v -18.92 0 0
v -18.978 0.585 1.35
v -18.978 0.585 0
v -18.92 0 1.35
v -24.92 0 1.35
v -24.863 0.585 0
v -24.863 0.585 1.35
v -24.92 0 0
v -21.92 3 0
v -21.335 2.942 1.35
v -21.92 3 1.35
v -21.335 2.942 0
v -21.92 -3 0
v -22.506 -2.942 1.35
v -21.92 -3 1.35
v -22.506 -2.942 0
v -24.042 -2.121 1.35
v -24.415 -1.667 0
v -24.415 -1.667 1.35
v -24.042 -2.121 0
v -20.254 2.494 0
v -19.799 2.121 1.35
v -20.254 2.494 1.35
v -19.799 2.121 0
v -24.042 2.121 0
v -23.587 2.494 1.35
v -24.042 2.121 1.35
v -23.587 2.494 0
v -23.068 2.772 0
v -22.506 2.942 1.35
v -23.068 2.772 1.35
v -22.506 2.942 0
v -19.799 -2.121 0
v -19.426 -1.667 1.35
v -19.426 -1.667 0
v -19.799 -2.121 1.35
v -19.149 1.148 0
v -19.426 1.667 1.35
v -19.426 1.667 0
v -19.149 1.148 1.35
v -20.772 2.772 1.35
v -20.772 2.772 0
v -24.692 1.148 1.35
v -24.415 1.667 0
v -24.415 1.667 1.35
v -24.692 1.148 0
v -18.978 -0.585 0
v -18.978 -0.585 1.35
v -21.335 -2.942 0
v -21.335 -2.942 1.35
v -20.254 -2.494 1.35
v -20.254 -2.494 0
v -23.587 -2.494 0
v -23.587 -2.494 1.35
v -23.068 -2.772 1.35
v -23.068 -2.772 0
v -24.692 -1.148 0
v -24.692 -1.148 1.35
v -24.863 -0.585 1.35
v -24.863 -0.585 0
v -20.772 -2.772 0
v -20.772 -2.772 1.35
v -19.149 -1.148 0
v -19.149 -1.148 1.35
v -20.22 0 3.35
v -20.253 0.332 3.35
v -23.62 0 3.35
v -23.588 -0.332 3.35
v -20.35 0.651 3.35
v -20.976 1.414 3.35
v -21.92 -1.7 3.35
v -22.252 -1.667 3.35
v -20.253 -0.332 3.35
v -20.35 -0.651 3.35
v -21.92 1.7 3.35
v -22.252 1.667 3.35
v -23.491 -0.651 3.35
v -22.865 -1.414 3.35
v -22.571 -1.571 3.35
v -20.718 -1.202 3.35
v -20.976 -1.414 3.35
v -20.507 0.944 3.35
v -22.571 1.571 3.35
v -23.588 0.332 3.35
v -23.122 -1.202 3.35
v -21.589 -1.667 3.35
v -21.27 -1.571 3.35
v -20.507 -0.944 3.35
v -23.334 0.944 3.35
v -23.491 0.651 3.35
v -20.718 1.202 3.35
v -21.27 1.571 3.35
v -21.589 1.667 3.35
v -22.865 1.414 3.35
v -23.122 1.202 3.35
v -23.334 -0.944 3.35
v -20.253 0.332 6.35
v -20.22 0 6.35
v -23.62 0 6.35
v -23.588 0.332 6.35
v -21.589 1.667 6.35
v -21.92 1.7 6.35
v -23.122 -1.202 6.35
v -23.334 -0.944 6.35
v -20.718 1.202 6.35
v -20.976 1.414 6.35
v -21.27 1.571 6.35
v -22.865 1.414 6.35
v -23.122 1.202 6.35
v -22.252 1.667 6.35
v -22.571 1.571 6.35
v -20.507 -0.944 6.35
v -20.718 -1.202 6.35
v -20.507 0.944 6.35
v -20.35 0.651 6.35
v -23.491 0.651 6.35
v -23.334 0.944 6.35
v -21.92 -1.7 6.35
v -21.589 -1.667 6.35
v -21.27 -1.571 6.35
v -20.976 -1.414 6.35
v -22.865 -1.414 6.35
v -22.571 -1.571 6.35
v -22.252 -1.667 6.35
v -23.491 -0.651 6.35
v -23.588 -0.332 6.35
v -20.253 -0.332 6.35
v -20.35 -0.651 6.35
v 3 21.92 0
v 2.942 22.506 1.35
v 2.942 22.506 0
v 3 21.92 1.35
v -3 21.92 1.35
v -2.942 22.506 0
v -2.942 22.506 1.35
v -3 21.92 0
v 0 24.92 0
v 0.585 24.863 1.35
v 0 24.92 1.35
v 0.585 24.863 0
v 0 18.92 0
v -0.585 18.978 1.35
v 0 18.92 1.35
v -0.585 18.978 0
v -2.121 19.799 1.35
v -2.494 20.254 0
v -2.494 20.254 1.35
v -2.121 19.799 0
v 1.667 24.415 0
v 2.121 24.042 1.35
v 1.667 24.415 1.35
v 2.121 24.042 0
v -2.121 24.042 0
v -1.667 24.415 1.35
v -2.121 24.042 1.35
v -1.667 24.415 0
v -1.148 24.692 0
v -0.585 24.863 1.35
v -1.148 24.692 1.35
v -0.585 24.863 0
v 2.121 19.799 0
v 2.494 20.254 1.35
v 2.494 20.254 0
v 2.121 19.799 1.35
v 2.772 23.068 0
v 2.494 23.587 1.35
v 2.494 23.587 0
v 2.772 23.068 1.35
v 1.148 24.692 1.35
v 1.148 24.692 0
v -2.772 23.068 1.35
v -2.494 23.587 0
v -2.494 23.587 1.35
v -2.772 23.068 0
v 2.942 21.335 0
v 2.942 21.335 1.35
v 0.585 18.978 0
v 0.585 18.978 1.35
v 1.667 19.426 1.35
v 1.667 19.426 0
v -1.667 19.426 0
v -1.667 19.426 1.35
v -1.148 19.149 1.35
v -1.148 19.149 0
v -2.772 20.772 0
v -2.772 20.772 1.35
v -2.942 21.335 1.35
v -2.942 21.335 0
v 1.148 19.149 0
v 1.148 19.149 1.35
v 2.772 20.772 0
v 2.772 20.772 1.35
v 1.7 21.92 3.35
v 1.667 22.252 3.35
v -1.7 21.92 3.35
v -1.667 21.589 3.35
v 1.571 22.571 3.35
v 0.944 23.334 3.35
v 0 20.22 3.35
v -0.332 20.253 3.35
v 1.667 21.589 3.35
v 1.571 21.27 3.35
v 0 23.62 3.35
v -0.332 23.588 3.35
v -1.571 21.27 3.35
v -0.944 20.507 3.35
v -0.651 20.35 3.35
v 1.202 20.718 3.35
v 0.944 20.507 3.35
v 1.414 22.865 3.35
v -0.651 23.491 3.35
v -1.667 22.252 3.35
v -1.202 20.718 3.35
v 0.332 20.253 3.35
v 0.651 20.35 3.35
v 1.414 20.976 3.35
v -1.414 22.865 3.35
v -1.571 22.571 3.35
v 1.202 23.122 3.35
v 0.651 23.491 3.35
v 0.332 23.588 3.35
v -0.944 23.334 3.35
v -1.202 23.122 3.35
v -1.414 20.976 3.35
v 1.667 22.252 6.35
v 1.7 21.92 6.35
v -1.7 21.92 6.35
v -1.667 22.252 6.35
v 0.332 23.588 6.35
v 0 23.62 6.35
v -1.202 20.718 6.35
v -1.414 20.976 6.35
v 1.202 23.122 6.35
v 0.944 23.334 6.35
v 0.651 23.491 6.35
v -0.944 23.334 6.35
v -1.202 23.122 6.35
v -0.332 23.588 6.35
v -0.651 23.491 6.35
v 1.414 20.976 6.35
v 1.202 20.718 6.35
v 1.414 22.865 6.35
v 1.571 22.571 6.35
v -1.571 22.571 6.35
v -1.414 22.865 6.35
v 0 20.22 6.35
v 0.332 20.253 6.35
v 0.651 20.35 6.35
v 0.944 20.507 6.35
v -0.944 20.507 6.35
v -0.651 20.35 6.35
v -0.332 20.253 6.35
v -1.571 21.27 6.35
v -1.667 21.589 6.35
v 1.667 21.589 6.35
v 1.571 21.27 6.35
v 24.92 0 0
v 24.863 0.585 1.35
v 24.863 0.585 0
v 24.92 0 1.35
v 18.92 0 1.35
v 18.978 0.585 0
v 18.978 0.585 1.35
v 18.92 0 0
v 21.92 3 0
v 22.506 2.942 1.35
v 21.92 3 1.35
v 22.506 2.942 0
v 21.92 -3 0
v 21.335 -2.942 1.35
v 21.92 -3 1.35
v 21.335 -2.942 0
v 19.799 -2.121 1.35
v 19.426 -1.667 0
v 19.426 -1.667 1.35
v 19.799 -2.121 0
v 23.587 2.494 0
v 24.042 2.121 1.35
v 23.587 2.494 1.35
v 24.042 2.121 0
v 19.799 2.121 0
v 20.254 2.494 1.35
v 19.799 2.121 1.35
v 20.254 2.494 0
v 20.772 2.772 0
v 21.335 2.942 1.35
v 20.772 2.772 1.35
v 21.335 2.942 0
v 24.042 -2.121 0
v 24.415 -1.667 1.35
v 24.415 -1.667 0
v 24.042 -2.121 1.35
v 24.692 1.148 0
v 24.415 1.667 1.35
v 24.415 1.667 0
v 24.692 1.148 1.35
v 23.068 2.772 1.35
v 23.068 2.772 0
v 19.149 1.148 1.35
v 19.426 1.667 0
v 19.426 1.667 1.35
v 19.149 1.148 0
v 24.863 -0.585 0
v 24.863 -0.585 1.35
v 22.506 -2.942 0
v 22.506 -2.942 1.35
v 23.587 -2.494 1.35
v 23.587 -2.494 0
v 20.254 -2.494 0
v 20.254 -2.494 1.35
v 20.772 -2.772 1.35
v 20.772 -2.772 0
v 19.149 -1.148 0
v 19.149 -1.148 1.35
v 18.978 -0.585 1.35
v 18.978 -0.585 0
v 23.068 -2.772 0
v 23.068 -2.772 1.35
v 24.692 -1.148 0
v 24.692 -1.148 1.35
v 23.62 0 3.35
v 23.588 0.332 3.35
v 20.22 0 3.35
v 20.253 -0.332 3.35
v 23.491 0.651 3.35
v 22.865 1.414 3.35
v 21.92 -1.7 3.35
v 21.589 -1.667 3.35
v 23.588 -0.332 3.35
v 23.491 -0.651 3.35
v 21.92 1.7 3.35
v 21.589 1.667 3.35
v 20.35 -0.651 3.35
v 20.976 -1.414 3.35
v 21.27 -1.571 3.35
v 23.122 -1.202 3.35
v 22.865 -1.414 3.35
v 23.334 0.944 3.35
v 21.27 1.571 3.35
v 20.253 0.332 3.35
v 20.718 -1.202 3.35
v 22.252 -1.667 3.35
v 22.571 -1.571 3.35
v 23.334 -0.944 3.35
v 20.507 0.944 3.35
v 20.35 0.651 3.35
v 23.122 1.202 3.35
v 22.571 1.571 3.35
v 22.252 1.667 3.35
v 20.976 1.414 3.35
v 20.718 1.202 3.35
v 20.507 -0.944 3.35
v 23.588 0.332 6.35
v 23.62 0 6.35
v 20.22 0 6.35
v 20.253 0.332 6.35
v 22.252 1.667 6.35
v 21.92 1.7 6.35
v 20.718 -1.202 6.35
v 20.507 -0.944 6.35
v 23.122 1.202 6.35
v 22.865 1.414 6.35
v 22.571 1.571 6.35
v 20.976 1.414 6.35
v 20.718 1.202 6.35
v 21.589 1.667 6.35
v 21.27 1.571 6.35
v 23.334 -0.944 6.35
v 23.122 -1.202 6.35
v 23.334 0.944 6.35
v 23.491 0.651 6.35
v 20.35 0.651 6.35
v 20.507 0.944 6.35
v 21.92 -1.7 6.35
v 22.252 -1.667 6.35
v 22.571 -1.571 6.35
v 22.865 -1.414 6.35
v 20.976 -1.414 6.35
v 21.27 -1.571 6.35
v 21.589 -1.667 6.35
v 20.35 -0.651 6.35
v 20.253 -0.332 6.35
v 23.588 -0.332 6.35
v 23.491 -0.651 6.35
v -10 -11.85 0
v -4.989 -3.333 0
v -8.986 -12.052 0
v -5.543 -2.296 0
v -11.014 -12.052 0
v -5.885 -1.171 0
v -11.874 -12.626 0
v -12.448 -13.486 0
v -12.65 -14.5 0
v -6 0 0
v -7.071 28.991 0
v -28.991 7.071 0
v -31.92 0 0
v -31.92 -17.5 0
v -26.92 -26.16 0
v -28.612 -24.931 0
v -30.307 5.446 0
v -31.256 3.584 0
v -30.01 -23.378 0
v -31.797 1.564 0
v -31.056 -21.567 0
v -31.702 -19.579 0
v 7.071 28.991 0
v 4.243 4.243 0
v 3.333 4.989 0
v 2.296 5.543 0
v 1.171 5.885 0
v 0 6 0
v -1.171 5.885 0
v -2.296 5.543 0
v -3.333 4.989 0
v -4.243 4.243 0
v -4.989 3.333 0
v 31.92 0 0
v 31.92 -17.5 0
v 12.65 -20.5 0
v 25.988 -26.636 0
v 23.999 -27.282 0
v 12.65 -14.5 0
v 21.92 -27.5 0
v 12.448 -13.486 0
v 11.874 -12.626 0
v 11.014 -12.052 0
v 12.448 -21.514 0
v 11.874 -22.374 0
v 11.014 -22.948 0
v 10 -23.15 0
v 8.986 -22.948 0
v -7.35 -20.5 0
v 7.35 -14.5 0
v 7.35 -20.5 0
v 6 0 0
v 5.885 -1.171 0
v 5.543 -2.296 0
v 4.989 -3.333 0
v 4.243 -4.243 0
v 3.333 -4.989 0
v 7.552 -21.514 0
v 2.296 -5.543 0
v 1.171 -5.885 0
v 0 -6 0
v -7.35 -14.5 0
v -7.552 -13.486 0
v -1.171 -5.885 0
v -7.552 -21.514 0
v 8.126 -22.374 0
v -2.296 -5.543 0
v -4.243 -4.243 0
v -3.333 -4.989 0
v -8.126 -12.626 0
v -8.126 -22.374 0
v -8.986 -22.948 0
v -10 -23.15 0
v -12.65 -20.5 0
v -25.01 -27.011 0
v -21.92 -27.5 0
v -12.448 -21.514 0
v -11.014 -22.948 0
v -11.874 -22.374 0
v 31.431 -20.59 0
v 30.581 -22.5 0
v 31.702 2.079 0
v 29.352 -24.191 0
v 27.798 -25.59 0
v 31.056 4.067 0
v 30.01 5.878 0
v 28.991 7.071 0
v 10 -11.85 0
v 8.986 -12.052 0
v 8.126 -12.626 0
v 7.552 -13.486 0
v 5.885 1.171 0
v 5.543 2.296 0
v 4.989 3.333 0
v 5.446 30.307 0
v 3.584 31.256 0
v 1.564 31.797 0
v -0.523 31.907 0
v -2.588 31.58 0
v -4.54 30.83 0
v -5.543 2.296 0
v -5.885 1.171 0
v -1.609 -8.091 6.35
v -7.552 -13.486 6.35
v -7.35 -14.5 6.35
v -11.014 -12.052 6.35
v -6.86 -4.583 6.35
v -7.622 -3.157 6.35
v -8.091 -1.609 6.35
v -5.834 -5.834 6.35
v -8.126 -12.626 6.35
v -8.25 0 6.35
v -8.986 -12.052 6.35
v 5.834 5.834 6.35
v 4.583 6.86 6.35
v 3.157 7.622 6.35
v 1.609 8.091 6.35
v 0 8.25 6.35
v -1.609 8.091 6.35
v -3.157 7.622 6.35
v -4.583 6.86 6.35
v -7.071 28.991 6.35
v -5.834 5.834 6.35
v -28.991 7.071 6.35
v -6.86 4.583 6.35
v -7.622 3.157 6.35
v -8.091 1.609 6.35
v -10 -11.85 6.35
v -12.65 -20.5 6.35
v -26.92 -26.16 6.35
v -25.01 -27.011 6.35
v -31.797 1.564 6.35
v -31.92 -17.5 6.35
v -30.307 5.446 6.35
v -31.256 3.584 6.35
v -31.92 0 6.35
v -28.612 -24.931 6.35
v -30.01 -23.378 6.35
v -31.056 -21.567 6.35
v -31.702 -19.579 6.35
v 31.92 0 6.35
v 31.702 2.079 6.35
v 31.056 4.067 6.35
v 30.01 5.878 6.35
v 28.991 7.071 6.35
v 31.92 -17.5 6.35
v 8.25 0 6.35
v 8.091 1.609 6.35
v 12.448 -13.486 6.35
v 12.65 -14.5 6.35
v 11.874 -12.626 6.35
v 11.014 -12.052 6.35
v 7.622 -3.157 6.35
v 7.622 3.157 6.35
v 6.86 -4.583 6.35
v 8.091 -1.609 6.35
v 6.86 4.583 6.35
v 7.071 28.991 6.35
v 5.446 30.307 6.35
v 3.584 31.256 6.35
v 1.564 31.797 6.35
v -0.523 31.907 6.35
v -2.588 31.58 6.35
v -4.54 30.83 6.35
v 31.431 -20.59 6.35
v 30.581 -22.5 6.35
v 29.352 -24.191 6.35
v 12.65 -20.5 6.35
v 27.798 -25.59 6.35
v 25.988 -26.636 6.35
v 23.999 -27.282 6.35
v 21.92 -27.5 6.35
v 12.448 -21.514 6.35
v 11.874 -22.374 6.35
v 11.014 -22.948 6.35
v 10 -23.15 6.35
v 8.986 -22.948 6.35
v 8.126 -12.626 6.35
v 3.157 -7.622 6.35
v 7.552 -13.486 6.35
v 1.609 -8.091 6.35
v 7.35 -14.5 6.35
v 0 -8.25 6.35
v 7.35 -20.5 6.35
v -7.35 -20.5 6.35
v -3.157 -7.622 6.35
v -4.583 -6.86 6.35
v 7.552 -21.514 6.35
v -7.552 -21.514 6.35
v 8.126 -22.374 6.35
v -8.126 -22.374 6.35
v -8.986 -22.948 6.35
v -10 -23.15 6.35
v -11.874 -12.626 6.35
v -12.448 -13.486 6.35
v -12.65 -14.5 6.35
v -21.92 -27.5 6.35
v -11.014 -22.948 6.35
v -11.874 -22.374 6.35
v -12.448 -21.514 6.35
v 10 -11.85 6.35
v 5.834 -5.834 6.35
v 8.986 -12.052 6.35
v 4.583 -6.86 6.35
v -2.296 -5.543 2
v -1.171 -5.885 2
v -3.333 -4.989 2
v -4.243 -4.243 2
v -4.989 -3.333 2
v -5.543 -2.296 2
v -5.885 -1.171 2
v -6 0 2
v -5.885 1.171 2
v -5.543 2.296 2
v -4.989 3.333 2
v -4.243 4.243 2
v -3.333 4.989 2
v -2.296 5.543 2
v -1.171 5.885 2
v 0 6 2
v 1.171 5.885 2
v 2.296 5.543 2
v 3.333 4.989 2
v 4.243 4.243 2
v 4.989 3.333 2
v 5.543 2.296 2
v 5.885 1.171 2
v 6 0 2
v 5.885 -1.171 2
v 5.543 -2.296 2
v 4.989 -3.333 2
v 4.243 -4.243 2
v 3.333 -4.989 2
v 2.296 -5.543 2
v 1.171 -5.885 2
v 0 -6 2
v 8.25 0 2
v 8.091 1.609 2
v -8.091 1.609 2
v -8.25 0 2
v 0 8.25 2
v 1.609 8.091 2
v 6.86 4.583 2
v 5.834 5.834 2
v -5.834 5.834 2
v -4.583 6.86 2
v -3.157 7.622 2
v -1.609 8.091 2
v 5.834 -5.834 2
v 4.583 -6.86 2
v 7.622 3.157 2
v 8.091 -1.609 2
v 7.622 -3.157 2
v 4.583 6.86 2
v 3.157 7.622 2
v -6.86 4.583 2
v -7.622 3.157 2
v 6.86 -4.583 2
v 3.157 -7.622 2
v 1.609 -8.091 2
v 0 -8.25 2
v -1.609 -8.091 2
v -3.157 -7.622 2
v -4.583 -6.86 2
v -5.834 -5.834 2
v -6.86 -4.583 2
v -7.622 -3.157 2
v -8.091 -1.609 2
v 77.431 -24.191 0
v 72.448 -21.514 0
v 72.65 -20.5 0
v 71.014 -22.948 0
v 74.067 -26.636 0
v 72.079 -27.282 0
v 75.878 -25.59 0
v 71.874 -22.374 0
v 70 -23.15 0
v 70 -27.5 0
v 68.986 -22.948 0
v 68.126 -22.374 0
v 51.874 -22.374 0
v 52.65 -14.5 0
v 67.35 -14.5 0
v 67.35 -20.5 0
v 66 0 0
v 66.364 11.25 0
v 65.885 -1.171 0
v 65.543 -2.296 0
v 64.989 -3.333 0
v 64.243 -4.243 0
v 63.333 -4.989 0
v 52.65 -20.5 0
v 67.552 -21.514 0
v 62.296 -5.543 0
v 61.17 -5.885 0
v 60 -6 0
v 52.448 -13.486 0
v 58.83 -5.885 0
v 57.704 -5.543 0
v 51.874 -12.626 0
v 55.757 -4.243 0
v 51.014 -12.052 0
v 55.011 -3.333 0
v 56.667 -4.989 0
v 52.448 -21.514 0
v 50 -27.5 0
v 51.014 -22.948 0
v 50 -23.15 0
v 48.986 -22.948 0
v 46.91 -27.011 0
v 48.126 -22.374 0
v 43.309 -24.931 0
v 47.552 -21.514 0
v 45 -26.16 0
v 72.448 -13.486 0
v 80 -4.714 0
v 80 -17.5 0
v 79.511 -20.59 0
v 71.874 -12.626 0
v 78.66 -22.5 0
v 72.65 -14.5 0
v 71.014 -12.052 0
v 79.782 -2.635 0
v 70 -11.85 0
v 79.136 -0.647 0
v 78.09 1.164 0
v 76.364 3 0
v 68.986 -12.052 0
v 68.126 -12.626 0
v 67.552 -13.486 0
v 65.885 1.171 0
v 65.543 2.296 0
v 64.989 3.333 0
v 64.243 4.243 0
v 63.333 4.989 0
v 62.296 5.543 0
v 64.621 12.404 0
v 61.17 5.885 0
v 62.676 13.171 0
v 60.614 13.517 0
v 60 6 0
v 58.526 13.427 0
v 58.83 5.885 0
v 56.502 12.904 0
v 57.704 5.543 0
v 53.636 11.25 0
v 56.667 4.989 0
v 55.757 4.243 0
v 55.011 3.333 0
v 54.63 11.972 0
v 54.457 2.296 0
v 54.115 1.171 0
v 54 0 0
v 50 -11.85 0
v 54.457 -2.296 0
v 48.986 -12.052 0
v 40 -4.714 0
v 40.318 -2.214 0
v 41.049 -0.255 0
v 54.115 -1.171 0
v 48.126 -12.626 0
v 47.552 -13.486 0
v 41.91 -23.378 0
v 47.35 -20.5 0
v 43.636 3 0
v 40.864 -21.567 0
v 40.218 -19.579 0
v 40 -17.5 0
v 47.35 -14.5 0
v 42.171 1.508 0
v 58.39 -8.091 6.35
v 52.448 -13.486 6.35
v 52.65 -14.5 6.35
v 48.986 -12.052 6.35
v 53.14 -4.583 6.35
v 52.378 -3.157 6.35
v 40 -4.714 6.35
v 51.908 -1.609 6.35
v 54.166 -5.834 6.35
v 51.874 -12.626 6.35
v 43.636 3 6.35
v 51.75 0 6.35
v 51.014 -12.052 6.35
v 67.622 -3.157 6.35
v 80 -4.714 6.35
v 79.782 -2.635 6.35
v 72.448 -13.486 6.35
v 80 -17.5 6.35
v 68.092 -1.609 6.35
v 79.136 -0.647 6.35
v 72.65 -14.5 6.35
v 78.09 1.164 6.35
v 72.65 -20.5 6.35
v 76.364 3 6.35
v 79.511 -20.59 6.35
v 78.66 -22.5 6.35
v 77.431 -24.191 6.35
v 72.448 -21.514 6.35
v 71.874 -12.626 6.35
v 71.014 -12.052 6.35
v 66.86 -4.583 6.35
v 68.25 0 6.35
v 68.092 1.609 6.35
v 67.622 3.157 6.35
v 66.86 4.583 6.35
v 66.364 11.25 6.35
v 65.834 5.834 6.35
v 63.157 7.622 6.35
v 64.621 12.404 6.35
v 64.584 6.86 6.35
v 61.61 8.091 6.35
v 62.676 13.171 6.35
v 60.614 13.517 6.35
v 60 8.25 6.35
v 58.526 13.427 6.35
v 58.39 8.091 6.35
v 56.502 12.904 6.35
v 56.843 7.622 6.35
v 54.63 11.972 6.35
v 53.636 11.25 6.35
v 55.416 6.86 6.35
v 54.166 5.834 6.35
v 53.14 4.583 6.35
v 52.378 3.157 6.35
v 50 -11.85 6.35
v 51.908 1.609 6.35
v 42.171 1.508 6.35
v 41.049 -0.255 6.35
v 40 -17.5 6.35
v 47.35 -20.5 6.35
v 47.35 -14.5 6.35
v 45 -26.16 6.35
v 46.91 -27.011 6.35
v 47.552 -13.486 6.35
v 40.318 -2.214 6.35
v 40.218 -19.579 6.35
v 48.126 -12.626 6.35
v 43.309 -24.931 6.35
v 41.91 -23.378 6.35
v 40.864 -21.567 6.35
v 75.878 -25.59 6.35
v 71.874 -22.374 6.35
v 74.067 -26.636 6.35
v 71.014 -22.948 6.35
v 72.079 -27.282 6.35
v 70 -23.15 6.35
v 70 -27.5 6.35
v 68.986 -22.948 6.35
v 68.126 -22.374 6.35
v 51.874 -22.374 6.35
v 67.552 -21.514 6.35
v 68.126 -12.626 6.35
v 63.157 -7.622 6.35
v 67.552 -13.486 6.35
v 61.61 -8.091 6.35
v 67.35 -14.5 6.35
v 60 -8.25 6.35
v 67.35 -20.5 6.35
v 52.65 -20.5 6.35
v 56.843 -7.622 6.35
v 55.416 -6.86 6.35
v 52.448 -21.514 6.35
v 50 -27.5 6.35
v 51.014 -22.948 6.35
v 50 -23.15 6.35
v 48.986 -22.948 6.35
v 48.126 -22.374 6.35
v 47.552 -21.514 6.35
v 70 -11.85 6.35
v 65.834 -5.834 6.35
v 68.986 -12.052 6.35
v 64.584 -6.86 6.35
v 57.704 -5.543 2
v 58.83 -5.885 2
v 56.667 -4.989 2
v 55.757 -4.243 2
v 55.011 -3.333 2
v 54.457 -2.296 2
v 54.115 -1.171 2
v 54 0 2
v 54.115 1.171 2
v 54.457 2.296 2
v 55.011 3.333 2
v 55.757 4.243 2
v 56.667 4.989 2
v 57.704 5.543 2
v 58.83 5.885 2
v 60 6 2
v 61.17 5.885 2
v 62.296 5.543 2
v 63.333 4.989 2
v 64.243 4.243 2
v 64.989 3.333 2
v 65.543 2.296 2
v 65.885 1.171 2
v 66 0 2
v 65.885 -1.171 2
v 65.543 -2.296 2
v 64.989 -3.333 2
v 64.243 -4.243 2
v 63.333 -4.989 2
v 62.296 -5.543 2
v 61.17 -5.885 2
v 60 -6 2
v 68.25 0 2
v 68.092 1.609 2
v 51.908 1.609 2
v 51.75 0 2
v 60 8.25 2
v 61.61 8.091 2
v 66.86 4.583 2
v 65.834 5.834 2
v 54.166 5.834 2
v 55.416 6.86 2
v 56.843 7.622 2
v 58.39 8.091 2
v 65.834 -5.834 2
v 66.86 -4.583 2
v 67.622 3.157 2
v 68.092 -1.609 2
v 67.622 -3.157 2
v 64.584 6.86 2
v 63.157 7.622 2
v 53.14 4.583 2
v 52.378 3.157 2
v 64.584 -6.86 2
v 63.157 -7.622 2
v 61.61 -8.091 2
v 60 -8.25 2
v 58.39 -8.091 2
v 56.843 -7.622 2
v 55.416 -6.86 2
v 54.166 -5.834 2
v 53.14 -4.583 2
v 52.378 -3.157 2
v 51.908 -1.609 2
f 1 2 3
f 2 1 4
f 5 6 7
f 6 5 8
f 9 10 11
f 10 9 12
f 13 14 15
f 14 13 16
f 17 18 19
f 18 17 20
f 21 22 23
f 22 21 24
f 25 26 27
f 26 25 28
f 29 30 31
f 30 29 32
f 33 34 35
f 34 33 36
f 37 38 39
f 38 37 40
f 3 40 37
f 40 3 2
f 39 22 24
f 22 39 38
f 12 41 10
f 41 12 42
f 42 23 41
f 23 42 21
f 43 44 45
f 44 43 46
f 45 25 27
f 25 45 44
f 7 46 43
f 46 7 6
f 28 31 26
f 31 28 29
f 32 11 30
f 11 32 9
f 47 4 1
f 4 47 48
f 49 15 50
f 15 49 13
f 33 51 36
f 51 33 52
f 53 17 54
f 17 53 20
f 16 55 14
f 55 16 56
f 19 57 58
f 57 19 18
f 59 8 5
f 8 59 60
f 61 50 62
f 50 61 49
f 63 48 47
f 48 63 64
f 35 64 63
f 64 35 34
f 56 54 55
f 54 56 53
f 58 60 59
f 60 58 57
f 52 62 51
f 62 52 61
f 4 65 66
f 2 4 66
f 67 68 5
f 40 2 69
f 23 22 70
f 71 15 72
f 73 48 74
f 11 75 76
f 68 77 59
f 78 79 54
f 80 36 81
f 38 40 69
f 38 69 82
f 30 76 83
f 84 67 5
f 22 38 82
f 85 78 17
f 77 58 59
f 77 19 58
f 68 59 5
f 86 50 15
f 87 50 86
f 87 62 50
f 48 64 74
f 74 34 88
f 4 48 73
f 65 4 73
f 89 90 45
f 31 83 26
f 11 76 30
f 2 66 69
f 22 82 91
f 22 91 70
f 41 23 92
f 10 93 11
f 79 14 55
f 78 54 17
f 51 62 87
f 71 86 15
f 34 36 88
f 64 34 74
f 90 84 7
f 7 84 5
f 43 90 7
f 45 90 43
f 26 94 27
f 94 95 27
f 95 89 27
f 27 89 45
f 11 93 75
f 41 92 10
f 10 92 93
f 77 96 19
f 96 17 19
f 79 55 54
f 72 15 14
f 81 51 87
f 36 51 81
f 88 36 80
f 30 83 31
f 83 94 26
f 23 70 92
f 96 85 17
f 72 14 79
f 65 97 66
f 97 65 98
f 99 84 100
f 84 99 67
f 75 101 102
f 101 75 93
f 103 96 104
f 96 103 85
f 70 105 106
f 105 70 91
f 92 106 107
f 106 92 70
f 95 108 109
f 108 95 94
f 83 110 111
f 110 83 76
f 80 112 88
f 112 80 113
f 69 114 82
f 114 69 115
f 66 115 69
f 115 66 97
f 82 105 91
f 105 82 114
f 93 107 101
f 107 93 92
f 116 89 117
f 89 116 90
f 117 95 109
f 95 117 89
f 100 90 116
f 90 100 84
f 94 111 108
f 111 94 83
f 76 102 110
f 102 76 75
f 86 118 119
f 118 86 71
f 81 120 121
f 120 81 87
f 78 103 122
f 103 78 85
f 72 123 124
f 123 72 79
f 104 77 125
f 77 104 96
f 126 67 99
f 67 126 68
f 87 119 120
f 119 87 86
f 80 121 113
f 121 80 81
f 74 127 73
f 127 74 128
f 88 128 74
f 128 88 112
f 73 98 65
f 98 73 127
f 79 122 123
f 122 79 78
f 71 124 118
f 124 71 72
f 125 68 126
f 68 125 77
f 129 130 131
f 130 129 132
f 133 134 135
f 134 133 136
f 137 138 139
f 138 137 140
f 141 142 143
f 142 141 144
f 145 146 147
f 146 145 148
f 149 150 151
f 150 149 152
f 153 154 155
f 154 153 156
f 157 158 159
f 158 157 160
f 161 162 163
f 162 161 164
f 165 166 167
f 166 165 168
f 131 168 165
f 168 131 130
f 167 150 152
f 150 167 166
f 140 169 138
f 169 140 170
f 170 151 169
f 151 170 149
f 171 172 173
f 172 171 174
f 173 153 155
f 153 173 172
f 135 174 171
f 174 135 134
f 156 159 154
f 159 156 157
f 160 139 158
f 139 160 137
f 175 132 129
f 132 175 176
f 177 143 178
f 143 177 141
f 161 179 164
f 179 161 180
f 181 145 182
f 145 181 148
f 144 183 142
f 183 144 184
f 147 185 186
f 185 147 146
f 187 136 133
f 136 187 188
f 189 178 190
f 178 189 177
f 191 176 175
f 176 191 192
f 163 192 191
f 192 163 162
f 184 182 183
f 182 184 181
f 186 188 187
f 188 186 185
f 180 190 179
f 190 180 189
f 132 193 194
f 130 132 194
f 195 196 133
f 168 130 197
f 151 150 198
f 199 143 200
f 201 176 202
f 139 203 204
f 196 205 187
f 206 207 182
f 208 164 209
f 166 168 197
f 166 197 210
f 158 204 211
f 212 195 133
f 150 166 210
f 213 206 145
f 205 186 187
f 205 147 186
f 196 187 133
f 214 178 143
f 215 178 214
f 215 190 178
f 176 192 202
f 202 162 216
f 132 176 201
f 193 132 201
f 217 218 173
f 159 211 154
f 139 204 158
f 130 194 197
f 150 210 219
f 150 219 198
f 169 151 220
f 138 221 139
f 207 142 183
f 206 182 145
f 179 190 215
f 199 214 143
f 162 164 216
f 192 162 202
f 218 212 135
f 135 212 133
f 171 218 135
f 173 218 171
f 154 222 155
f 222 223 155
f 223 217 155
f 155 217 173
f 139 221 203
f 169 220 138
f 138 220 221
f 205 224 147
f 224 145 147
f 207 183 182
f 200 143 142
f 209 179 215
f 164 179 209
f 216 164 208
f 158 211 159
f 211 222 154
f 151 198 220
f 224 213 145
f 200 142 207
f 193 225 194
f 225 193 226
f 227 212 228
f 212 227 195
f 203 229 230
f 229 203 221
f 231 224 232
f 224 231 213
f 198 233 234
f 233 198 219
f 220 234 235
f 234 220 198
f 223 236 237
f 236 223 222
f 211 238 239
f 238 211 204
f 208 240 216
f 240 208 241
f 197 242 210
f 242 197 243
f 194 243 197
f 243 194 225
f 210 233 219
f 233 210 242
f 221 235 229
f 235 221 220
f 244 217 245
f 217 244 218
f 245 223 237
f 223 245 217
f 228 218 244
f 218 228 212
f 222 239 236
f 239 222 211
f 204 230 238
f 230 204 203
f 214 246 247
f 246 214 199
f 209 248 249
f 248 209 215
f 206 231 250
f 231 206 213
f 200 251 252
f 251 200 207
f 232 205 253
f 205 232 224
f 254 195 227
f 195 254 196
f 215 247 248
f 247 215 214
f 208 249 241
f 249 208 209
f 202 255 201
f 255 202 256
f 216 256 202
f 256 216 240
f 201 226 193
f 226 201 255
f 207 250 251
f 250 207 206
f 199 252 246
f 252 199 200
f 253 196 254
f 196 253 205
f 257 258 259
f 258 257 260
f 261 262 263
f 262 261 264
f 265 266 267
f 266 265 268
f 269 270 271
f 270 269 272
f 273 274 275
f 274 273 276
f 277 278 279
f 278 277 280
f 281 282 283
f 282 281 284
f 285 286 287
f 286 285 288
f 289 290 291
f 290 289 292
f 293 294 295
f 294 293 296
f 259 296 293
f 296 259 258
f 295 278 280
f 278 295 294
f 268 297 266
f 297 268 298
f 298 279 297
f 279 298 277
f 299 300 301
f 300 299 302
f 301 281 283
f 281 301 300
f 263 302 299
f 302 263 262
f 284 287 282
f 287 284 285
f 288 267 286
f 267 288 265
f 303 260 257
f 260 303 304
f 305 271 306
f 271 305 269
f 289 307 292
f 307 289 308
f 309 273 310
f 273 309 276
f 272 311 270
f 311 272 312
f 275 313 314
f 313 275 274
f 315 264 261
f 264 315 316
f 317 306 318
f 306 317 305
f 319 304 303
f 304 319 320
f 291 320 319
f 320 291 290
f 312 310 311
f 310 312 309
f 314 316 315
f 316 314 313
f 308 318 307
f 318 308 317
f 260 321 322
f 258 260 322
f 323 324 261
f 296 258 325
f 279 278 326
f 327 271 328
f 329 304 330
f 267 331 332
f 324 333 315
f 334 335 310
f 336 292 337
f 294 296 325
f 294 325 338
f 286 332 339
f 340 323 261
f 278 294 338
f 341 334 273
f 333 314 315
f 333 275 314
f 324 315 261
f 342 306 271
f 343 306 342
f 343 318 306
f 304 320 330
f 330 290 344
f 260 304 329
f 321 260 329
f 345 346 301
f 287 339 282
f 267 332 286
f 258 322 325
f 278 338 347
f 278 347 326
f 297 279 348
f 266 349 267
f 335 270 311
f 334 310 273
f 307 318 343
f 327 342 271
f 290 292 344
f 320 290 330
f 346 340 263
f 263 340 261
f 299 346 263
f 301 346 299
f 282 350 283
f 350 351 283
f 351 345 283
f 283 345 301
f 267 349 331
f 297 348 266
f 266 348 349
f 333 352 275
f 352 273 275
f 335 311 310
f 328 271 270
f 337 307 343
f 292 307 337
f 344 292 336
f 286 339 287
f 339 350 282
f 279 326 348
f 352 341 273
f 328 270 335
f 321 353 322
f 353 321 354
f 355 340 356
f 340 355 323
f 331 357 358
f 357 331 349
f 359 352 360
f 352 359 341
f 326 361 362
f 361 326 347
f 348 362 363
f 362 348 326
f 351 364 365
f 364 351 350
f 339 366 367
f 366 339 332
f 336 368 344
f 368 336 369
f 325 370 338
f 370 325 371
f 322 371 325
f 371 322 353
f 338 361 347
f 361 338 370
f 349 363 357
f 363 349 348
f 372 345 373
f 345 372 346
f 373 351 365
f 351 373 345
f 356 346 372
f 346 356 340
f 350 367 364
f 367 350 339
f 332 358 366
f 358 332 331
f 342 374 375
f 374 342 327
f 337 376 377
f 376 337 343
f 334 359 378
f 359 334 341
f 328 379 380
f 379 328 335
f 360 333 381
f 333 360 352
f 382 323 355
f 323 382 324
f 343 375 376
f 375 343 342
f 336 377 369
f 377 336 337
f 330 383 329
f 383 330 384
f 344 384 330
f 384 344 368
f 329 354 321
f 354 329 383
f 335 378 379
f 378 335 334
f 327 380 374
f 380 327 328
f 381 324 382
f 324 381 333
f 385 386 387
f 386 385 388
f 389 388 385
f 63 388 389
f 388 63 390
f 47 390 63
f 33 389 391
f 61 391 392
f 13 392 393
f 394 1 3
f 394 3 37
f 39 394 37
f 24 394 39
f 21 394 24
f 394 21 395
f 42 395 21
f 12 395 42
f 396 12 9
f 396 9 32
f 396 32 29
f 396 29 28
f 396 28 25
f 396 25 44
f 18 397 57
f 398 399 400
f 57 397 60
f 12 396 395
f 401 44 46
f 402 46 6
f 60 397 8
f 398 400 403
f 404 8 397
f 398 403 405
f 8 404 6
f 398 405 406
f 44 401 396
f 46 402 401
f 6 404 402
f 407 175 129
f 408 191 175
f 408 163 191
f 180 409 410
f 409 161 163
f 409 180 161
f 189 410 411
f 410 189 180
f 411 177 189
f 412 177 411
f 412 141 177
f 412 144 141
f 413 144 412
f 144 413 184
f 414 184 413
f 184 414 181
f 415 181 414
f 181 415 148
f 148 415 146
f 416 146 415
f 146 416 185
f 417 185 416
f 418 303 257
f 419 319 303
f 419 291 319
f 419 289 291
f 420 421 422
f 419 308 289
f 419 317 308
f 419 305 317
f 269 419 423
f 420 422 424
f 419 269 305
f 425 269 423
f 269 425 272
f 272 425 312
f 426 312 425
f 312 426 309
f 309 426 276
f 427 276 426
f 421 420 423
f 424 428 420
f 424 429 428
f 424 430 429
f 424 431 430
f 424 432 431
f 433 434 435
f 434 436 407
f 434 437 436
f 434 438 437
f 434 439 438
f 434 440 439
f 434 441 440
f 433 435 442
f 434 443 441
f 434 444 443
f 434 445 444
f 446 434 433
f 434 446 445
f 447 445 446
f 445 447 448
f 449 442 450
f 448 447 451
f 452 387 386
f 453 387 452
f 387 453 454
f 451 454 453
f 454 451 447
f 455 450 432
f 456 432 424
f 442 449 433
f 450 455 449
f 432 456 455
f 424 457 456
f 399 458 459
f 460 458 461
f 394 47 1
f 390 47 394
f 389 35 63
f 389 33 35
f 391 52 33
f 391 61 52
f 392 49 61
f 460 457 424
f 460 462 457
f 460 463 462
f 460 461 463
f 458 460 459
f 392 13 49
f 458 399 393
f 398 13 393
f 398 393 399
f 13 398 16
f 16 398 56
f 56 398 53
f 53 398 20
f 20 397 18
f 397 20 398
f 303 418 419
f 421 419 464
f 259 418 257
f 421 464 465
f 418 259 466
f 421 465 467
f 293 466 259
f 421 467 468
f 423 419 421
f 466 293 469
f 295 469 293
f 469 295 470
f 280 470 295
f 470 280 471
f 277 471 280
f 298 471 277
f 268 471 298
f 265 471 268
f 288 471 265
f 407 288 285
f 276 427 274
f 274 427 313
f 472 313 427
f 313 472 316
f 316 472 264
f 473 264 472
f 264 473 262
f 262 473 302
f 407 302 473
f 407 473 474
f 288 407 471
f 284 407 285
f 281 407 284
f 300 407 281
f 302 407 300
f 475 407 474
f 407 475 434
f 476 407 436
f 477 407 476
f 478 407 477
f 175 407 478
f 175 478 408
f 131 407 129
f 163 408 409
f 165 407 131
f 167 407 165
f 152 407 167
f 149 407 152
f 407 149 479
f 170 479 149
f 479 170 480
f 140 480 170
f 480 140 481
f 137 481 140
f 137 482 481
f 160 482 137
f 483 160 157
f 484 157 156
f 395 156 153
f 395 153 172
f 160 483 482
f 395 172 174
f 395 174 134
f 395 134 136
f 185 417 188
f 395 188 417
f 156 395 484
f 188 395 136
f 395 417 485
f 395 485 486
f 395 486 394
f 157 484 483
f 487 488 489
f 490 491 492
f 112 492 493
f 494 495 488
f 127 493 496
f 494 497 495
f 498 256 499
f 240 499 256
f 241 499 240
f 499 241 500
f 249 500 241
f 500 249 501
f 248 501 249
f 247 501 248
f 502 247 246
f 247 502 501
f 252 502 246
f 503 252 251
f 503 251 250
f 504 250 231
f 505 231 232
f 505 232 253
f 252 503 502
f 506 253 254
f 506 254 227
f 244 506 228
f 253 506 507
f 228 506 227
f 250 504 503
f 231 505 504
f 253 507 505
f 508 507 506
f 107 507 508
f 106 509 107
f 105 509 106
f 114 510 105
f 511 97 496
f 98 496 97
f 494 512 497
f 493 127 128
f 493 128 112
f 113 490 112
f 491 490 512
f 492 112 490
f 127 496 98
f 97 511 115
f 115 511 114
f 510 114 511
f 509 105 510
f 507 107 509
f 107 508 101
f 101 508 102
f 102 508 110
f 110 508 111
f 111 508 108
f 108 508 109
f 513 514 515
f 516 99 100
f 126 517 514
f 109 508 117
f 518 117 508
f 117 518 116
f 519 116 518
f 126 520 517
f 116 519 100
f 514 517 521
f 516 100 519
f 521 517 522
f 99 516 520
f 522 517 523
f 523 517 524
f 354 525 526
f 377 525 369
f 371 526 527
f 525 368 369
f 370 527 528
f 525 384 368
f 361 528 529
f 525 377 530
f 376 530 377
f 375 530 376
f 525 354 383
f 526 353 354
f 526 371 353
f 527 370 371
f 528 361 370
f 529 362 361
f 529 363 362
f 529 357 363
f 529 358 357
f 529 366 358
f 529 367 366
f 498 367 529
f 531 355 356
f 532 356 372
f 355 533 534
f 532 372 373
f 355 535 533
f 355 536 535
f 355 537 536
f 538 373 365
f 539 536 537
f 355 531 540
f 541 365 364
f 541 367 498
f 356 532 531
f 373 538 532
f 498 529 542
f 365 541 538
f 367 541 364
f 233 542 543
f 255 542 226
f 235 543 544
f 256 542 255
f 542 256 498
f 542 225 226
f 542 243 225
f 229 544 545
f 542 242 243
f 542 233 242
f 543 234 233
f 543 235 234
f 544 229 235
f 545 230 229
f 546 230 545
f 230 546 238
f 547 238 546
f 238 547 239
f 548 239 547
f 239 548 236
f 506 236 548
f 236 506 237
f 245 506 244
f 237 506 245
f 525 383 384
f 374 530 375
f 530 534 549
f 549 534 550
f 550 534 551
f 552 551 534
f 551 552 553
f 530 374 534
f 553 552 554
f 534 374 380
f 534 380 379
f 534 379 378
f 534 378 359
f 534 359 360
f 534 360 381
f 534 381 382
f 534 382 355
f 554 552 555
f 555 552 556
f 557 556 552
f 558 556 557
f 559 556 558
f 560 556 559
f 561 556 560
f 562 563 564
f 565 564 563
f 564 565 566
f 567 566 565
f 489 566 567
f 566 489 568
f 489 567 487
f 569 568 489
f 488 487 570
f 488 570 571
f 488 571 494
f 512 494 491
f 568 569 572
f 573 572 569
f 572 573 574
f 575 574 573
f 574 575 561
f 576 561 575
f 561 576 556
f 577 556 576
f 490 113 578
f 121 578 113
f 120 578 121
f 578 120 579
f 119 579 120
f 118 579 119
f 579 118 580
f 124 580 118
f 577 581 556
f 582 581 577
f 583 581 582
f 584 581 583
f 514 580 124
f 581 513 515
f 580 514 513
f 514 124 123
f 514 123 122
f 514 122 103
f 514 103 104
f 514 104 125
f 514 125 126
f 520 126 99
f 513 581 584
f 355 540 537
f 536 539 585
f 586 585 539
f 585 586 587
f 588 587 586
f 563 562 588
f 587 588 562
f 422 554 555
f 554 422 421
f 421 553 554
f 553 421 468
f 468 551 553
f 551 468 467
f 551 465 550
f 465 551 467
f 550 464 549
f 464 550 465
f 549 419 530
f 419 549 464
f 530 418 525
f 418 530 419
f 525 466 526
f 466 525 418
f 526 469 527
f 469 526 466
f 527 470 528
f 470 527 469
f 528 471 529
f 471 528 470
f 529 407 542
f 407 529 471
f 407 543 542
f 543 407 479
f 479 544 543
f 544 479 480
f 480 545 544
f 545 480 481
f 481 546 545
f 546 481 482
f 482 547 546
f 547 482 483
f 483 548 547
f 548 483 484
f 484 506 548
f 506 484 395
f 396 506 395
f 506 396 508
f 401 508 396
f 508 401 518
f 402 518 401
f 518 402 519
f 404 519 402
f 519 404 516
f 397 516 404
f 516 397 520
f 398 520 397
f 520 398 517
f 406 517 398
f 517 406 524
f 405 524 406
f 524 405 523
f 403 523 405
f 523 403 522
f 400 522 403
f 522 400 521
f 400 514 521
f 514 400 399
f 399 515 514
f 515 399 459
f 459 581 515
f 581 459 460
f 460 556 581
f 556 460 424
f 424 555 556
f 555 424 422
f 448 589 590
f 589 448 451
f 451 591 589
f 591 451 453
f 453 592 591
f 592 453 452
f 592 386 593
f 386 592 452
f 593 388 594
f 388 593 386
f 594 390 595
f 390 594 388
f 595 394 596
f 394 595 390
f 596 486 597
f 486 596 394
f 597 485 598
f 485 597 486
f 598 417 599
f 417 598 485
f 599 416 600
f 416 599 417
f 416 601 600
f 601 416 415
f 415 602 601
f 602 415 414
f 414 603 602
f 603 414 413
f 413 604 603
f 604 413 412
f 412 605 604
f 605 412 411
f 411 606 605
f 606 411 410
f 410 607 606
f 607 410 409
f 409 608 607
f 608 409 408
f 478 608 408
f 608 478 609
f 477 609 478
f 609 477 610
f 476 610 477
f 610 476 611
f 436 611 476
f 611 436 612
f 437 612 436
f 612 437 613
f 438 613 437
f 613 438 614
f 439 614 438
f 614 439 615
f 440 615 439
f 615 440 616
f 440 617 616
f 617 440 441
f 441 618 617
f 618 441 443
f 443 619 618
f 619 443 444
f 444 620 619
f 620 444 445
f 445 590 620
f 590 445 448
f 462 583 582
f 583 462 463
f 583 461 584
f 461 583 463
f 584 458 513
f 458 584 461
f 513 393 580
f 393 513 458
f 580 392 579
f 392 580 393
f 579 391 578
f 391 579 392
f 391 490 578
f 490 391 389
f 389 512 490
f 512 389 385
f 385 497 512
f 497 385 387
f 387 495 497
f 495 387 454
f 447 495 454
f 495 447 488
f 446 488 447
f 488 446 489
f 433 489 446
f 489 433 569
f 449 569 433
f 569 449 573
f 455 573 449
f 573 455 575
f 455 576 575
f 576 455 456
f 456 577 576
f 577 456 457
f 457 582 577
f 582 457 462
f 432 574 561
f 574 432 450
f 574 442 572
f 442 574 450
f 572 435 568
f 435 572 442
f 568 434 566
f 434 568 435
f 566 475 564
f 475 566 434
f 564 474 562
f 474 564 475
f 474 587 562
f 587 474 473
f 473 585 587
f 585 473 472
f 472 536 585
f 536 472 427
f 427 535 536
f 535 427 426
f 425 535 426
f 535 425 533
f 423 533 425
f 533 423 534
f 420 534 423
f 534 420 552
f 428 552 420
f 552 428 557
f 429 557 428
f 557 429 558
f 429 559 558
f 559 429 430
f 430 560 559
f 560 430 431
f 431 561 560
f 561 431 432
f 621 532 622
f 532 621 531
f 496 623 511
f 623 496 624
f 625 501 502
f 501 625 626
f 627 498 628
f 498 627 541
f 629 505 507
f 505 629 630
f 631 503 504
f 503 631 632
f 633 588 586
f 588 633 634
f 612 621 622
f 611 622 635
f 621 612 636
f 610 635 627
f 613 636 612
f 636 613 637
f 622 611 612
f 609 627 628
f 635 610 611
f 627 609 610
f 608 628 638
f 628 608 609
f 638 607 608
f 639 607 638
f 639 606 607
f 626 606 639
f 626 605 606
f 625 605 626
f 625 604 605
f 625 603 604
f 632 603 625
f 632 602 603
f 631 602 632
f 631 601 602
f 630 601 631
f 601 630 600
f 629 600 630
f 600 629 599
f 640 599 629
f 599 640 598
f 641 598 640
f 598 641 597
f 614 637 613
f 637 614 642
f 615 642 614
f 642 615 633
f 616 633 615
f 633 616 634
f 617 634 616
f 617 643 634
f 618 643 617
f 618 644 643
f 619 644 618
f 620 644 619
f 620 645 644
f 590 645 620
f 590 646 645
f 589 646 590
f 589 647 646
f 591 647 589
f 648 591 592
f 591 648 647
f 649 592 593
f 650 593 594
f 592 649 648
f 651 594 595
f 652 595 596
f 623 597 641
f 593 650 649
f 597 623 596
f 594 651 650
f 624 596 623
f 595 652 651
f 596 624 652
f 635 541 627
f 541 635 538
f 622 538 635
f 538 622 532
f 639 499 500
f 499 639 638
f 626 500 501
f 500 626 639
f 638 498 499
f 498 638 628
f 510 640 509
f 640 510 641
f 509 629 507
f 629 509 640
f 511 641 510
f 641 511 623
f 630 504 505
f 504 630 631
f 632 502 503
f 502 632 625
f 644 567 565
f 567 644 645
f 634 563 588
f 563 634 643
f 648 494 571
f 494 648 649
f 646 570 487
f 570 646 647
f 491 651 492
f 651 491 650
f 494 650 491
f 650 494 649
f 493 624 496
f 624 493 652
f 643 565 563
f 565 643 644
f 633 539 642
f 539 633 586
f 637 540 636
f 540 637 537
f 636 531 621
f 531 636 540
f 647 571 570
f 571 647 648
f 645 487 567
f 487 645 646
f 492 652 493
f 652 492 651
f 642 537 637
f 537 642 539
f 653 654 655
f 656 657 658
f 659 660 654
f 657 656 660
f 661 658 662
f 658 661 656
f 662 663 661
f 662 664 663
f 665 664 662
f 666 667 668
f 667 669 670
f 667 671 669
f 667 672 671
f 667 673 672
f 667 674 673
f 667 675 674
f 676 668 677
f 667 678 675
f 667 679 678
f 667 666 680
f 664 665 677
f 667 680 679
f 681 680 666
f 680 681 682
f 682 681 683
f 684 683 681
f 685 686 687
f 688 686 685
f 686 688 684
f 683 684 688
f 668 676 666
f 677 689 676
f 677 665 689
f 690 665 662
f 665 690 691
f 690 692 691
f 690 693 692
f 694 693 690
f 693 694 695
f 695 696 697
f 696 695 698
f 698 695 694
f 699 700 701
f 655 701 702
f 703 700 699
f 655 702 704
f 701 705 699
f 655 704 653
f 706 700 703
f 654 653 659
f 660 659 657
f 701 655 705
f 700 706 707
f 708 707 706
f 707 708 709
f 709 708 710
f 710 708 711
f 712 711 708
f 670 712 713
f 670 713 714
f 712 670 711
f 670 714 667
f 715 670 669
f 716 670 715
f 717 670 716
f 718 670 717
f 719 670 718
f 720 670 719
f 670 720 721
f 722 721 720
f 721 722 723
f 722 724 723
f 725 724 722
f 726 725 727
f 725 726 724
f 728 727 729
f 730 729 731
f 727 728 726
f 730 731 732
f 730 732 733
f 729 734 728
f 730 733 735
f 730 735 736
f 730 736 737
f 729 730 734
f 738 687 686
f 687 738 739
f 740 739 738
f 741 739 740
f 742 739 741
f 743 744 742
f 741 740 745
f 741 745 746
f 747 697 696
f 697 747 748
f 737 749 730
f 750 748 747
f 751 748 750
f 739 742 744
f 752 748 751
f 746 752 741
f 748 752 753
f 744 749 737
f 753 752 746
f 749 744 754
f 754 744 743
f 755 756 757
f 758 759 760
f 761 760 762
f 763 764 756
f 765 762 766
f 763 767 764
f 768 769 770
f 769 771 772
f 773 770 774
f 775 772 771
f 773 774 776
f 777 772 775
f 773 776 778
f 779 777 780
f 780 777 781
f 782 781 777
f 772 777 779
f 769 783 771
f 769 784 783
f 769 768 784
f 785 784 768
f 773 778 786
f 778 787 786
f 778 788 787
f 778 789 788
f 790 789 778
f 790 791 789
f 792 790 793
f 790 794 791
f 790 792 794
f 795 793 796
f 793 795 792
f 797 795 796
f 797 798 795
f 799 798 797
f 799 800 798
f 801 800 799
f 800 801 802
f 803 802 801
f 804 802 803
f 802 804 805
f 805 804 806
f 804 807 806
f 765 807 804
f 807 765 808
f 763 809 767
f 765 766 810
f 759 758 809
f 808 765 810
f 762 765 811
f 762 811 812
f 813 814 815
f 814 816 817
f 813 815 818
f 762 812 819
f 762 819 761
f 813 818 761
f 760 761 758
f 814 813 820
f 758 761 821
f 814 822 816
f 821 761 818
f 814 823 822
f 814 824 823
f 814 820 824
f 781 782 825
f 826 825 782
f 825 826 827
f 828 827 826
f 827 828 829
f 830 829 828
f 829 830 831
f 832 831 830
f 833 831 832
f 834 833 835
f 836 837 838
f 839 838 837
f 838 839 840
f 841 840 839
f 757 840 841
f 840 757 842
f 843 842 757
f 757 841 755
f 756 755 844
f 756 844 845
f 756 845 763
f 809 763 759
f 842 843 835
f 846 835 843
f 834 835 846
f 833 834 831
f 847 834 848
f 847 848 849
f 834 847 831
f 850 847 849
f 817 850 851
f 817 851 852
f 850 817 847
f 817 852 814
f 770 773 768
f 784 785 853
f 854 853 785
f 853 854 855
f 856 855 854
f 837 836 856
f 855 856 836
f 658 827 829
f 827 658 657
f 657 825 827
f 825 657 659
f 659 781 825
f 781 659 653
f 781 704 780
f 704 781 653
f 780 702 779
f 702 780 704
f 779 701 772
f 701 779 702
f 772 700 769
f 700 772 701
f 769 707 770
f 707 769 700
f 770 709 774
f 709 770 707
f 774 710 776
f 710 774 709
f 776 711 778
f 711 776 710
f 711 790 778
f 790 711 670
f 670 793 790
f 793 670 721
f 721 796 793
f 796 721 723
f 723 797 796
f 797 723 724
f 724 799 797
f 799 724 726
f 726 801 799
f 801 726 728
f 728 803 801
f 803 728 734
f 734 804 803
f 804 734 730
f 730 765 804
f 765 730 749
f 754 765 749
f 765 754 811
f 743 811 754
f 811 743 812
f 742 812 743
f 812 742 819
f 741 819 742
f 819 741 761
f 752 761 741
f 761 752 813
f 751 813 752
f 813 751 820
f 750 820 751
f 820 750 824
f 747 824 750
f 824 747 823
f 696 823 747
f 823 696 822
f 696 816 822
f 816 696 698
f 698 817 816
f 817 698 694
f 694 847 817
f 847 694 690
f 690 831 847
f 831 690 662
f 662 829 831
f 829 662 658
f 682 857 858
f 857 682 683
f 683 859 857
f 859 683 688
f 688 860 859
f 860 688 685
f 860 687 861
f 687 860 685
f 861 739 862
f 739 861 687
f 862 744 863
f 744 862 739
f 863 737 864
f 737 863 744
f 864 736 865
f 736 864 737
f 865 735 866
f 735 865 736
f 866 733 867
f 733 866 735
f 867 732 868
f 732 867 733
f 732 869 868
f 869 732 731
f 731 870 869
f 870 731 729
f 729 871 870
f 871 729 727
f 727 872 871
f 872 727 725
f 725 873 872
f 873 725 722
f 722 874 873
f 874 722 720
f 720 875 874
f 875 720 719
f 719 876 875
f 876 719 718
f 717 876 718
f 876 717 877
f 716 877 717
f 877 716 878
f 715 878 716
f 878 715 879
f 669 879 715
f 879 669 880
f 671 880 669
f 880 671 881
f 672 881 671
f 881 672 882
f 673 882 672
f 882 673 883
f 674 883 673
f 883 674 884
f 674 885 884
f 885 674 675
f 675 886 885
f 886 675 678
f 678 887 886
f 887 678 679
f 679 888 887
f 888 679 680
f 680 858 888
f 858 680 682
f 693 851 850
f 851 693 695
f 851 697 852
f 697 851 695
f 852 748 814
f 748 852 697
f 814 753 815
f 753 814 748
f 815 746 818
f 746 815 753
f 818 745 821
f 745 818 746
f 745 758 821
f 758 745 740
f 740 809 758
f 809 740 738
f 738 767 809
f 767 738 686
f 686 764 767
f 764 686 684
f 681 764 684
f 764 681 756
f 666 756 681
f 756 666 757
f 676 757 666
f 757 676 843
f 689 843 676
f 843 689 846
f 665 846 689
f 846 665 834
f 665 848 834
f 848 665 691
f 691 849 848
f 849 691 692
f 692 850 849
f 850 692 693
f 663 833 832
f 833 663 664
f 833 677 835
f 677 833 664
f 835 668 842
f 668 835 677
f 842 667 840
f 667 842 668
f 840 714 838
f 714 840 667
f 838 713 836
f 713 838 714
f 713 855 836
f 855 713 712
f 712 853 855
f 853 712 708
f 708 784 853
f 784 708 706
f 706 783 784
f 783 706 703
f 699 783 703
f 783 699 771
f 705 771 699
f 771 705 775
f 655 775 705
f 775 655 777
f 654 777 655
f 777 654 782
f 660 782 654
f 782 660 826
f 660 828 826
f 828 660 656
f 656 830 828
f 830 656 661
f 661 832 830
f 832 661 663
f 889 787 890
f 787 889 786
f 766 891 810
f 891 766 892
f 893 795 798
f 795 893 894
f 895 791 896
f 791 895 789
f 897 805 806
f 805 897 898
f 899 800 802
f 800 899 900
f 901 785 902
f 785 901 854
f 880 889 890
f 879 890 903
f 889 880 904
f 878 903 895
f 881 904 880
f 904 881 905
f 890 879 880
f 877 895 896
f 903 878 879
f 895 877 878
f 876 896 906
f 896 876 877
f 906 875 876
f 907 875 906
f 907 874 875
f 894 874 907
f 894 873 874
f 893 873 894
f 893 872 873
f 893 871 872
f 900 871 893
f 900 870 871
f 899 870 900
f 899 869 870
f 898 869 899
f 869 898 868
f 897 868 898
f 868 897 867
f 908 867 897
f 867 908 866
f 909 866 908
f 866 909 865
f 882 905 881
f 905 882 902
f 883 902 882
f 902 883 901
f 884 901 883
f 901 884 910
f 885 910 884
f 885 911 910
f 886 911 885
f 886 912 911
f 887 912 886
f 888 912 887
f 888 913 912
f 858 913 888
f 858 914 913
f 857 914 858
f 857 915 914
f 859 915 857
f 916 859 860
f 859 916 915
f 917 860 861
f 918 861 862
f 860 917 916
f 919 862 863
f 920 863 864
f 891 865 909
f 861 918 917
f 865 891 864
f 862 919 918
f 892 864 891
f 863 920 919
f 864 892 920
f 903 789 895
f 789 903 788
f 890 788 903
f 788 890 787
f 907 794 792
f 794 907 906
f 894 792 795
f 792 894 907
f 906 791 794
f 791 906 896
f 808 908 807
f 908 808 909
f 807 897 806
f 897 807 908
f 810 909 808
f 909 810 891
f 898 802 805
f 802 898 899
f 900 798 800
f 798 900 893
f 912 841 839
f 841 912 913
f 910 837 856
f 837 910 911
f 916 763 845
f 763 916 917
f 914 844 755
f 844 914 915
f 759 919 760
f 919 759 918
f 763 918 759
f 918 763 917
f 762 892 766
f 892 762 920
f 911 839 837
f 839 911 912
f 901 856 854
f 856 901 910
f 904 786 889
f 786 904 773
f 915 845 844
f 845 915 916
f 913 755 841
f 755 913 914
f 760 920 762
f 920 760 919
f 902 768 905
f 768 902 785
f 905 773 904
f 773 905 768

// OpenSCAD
// file: misc_parts.scad
module wheel_spacer(width=10, thick=6.5, screw=5.5, $fn=128) {
    difference() {
        cylinder(r=width/2, h=thick);
        translate([0,0,-1]) cylinder(r=screw/2, h=thick+2);
    }
}

nema17 = [42.3, 31, 24, 3.6]; //width, screw width, face width,
module motor_spacer(width=15, height=36, motor=nema17) {
    base = motor[0]/2 - width;
    linear_extrude(height=height) offset(1, $fn=128) offset(-1) difference() {
        polygon([[base,base],[motor[0]/2,base],[motor[0]/2,motor[1]/2],[motor[1]/2,motor[0]/2],[base,motor[0]/2]]);
        circle(r=motor[2]/2, $fn=64);
        translate([motor[1]/2, motor[1]/2]) circle(r=motor[3]/2, $fn=32);
    }
}

wheel_spacer();

motor_spacer();
// file: config.scad
ex = 20; //extrusion, 20mm
gantry = [6, 10.75] * 25.4;
carriage = [5, 7] * 25.4;
dist = 13.5; //corner radius
ecc_rad = 7.2 / 2;
reg_rad = 5.00 / 2;
sep = 39.7;

spacer_sep = 30.32; //distance between wheels in the spacer block
spacer_thick = 13;

back_edge = 25;
motor_top = 30; //how far to move the motor above the rollers
top_offset = 20; //distance between motor top and top edge of y plates

x_rail = 40;
y_rail = 60;
z_rail = 40;

pulley_width = 20;
roller_rad = 24.39/2;

x_len = 500;
y_len = 500;
z_len = 250;

module slot(rad, width) {
    hull() {
        translate([-width/2,0]) circle(r=rad);
        translate([width/2,0]) circle(r=rad);
    }
}

module nema17(l=10, face=22.5) {
    $fn=64;
    sep = 31;
    screw = 3.0;
    
    slot(face/2, l);
    translate([-sep/2,-sep/2]) slot(screw/2, l);
    translate([-sep/2, sep/2]) slot(screw/2, l);
    translate([ sep/2,-sep/2]) slot(screw/2, l);
    translate([ sep/2, sep/2]) slot(screw/2, l);
}

module nema23(l=10) {
    $fn=64;
    sep = 47;
    screw = 5.05;
    translate([-sep/2,-sep/2]) slot(screw/2, l);
    translate([-sep/2, sep/2]) slot(screw/2, l);
    translate([ sep/2,-sep/2]) slot(screw/2, l);
    translate([ sep/2, sep/2]) slot(screw/2, l);
}
// main file
include <config.scad>;
use <misc_parts.scad>;

msep = 31;
screw = 3.4;
bearing = [10, 16.5, 5];
bthick = 2; //minimum thickness of wall behind bearing

zbase = msep/sqrt(2);

screwplate();
translate([60,0]) bottomplate();

module joinplate() {
    corner = 5;
    $fn=64;
    render() difference() {
        offset(corner) offset(-corner) polygon([
            [0,0],[60,0], [60,20],[20,80],[0,80]
        ]);
        
        //translate([ex*.5, 3.5*ex+6]) slot(1.5,6);
        
        translate([ex*.5, ex*.5]) circle(r=reg_rad);
        translate([ex*1.5, ex*.5]) circle(r=reg_rad);
        translate([ex*2.5, ex*.5]) circle(r=reg_rad);
        translate([ex*.5, ex*1.5]) circle(r=reg_rad);
        translate([ex*.5, ex*2.5]) circle(r=reg_rad);
        translate([ex*.5, ex*3.5]) circle(r=reg_rad);
    }
}

module zplate_holes(slot_length=5) {
    //bearing bore + 1mm radius margin
    circle(r=bearing[0]/2+1, $fn=32);
    
    //slots for extrusion mounting
    translate([-ex/2,-spacer_thick/2-slot_length/2-ex/2+2]) 
        rotate([0,0,90]) slot(reg_rad+.15, slot_length, $fn=16);
    translate([ ex/2,-spacer_thick/2-slot_length/2-ex/2+2]) 
        rotate([0,0,90]) slot(reg_rad+.15, slot_length, $fn=16);
}

module screwplate(thick=6.35, slot_length=6) {
    bottom = spacer_thick/2+ex*.25+slot_length;
    module screwhole(flip=false) {
        t = thick - 2*bthick;
        
        translate([0,0,-1]) cylinder(r=3, h=1+thick-5, $fn=32);
        translate([0,0,thick-5]) cylinder(r1=3, r2=screw/2, h=2, $fn=32);
        translate([0,0,3]) cylinder(r=screw/2, h=thick+2, $fn=32); 
    }
    difference() {
        render(convexity=10) linear_extrude(height=thick) difference() {
            offset(10) polygon([
                [-zbase, 0], [0, zbase], [zbase,0], 
                [zbase,-bottom], [-zbase, -bottom]
            ]);
            
            zplate_holes(slot_length=slot_length);
        }
        translate([0,0,bthick]) cylinder(r=bearing[1]/2, h=thick, $fn=32);
        
        translate([-zbase,0]) screwhole();
        translate([0, zbase]) screwhole();
        translate([ zbase,0]) screwhole();
    }
    
   /* translate([0,0,thick-1]) rotate([0,0,45]) {
        motor_spacer(width=12, height=43);
        rotate([0,0,90]) motor_spacer(width=12, height=43);
        rotate([0,0,-90]) motor_spacer(width=12, height=43);
    }*/
}

module bottomplate(thick=6.35, slot_length=6) {
    bottom = spacer_thick/2+ex*.75+slot_length;
    difference() {
        render(convexity=10) linear_extrude(height=thick) difference() {
            offset(10) offset(-10) polygon([
                [-z_rail/2, -bottom],[-z_rail/2,0],
                [0, bearing[1]],
                [z_rail/2, 0],[z_rail/2,-bottom],
            ]);
            
            zplate_holes(slot_length=slot_length);    
        }
        
        translate([0,0,bthick]) cylinder(r=bearing[1]/2, h=thick, $fn=32);
    }
}
